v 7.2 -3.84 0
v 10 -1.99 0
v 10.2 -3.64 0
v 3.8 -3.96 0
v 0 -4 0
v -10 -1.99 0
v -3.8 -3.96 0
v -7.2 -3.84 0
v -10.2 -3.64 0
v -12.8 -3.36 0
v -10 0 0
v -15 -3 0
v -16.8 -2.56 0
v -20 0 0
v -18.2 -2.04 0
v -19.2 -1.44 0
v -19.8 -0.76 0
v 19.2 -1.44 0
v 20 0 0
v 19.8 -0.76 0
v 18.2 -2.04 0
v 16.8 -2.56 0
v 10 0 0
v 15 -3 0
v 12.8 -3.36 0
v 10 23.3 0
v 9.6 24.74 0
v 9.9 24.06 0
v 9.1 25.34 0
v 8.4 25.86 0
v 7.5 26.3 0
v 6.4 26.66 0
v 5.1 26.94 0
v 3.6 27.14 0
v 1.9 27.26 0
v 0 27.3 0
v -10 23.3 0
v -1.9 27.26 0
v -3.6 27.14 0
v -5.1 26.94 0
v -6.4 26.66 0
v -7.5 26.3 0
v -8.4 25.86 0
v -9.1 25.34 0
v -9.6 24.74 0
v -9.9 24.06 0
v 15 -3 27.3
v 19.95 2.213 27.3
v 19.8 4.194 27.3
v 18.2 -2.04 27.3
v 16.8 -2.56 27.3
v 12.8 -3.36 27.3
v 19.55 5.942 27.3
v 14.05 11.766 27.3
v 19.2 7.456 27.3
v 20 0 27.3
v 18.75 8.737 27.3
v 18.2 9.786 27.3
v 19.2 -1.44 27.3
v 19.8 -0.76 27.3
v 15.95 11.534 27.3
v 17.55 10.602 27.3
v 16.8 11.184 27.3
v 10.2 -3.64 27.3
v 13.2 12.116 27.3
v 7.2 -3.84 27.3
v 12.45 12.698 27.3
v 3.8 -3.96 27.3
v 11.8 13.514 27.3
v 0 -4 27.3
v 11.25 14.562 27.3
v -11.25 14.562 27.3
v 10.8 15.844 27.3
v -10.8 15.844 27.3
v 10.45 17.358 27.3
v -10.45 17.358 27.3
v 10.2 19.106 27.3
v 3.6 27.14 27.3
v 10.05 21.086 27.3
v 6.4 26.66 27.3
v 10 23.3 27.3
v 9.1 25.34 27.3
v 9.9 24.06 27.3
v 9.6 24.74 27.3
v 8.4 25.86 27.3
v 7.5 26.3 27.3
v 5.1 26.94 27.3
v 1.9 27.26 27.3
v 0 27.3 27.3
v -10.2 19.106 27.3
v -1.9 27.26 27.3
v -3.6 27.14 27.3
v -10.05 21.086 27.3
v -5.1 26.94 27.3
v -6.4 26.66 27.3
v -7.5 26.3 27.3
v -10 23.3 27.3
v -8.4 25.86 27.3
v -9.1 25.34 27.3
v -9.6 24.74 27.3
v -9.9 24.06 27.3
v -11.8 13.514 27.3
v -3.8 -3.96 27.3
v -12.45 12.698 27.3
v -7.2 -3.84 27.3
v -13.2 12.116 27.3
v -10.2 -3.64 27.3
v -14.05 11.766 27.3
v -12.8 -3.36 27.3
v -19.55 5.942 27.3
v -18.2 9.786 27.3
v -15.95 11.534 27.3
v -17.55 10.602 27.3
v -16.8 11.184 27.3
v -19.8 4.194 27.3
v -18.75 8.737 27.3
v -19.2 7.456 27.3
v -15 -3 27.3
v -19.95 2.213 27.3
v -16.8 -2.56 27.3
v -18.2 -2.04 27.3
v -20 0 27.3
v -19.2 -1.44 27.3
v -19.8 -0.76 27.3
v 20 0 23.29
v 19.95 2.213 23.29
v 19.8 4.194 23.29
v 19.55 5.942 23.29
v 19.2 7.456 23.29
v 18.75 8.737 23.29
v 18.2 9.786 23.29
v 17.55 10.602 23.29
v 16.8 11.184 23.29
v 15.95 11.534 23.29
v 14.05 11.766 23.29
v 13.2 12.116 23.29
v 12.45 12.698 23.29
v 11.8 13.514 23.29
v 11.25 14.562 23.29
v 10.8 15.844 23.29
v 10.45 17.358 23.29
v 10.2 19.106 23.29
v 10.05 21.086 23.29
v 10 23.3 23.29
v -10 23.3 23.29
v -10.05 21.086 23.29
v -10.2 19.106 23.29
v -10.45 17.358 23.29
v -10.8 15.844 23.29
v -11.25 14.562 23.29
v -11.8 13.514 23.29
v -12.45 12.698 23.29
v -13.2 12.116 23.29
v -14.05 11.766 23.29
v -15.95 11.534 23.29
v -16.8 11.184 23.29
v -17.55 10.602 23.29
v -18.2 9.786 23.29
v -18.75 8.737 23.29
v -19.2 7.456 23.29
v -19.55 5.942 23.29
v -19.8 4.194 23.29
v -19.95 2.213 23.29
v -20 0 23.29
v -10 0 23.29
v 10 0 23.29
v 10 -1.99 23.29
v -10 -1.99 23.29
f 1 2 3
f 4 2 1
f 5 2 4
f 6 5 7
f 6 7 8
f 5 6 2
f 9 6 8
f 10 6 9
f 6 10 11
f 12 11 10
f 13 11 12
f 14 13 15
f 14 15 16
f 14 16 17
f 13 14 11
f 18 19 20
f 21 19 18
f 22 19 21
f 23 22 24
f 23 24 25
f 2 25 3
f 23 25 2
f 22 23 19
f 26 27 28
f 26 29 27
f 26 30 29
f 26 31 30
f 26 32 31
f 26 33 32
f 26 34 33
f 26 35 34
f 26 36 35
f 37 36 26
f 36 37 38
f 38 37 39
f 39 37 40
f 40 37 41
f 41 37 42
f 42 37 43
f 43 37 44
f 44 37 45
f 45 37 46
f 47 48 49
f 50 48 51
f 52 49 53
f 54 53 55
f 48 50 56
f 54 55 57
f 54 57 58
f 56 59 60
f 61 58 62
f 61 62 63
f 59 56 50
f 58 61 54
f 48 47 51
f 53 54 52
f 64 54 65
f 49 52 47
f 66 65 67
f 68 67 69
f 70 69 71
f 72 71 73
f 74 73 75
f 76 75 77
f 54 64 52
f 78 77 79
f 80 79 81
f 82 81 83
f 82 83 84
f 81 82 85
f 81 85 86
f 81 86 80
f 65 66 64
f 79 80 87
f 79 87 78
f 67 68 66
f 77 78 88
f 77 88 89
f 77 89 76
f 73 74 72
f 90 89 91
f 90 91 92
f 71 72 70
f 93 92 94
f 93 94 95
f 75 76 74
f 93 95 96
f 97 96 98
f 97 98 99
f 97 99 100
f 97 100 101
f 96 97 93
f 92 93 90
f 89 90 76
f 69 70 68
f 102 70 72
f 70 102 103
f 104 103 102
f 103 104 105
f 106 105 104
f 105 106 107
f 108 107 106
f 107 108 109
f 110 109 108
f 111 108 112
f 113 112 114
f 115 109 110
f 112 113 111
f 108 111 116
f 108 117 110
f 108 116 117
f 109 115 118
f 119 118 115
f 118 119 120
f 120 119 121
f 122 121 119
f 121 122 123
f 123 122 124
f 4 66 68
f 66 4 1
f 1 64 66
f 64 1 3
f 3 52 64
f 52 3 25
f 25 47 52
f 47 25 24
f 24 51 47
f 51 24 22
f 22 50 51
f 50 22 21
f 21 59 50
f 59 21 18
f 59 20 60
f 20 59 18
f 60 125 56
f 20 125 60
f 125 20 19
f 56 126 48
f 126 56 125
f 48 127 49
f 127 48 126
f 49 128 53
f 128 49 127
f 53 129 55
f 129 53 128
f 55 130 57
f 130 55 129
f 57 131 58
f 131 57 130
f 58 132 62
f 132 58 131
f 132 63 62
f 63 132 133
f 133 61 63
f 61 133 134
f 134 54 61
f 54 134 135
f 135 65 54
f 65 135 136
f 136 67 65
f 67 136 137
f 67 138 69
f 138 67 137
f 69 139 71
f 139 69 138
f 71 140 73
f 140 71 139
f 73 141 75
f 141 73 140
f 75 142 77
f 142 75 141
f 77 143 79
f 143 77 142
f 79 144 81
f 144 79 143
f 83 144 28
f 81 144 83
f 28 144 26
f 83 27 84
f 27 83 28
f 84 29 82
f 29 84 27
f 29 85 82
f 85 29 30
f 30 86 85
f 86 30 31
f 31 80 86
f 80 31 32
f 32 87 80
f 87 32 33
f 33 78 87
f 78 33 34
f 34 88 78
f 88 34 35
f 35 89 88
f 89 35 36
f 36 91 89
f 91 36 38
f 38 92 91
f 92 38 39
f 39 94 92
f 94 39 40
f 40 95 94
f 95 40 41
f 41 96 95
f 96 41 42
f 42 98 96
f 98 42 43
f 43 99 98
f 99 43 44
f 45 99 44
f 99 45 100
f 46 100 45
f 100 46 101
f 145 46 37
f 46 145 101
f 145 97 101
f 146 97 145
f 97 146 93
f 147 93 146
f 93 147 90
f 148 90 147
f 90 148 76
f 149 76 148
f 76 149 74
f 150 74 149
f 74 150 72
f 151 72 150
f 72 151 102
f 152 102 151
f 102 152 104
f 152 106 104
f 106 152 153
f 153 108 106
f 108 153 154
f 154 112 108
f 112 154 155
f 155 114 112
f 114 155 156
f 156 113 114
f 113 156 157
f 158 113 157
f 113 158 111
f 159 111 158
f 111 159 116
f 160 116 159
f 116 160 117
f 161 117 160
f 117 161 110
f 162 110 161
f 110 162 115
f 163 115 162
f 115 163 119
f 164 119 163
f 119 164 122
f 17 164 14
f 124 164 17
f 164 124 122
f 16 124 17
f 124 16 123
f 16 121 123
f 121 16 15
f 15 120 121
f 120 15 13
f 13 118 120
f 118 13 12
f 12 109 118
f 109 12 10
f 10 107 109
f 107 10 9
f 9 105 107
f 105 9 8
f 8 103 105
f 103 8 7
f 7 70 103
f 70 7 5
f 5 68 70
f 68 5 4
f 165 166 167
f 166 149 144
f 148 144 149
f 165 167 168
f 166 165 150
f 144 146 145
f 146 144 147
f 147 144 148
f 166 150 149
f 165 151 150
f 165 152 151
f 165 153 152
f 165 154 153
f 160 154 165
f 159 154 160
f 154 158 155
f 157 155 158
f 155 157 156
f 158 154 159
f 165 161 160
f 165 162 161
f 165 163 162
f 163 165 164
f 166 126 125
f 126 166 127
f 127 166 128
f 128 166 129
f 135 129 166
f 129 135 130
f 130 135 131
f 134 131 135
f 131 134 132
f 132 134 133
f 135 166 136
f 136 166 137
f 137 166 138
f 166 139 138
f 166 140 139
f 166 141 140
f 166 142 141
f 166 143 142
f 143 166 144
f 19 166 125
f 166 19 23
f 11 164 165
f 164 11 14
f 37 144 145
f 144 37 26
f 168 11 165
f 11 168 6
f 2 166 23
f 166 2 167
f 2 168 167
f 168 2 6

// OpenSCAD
// file: vector.scad
function is_nan(x) = x != x ;

// reverse vector
function reverse(v) = [for (i =[len(v)-1:-1:0]) v[i]];
// repeat vector n-times
function repeat(v, n) = [for (i=[0:n*len(v)-1])  v[ i%len(v) ] ];
// allow negative indexes for vector (counting from the back). -1 is last element in array
function v_index(v, n) = is_undef(n) ? len(v) : n < 0 ? len(v)+n : n ;
// cut slice of vertor. `start` included , `end` excluded.
function slice(v, start, end=undef) = [for (i=[start:v_index(v,end)-1]) v[i] ];

function v_add(v, n) = [for (i=[0:len(v)-1]) v[i]+n ];

assert(reverse([1,2,3]) == [3,2,1]);
assert(repeat([1,2],3) ==  [1, 2, 1, 2, 1, 2]);
assert(v_index([1,2,3],-1)==2);
assert(v_index([1,2,3],0) == 0);
assert(v_index([1,2,3],undef)==3);
assert(slice([1,2,3],1,-1)==[2]);
assert(slice([1,2,3],1)==[2,3]);
assert(v_add([1,2,3],1)==[2,3,4]);
// file: 2d.scad
use <vector.scad>

function max_x(a, i = 0) = (len(a) == 0) ? 0 : (i < len(a) - 1) ? max(a[i][0], max_x(a, i+1)) : a[i][0];
function shift_x(a, dx, scaler=1) = [for ( p=a) [scaler*p[0]+dx,p[1]] ];
function inverse_x(a) = shift_x(reverse(a),max_x(a),-1);
function mirror_x(a) = shift_x(reverse(a),0,-1);

function concat_with_undefs(prev,next) = 
    len(prev) == 0 ? next : 
        let (prev_last_p = prev[v_index(prev,-1)]) 
        is_undef(prev_last_p[1])  
            ? concat(slice(prev,0,-1),[[prev_last_p[0],next[0][1]]],next) 
            : is_undef(next[0][1]) 
                ? concat(prev, [[next[0][0],prev_last_p[1]]], slice(next,1)) 
                : concat(prev, next) ;

function join_poly(polys, r = [], i=0) = (i < len(polys)) ? 
    join_poly( polys, concat_with_undefs(r,shift_x(polys[i],max_x(r))) ,i+1) : r;

function line_segment(p1,p2) = [p1,[p2[0]-p1[0], p2[1] - p1[1]]];

function ls_slope(ls) = ls[1][1]/ls[1][0] ;

function ls_distance(ls) = sqrt(pow(ls[1][1],2)+pow(ls[1][0],2));

function ls_angle(ls) = 
    let (ta = asin(ls[1][1]/ls_distance(ls))) 
    sign(ls[1][0]) == -1 ? sign(ta) * 180 - ta : ta ;

function angle_diff_cw(a1, a2) = a1 < a2 ? angle_diff_cw(a1+360, a2) : a1 - a2 ;

function angle_diff_ccw(a1, a2) = angle_diff_cw(a2, a1);

function ls_midpoint(ls) = ls[0]+ls[1]/2;

function ls_endpoint(ls) = ls[0]+ls[1];

function line(slope,pt) = [slope, pt[1]-slope*pt[0]];

function l_y(l,x) = l[0]*x + l[1];

function l_segment(l,x1,x2) = line_segment([x1, l_y(l,x1)], [x2, l_y(l,x2)]);

function ls_line(ls) = let(slope=ls_slope(ls)) line(slope,ls[0]);

function ls_perpendicular(ls) = 
    let (l = ls_line(ls)) 
    let (mp = ls_midpoint(ls))
    line(-1/l[0], mp);

function intersect_lines(l1, l2) = 
    let (x = (l2[1]-l1[1])/(l1[0]-l2[0]))
    [x,l_y(l1,x)];

function interpolate_point(ls,fraction) =  [
    ls[0][0] + fraction*ls[1][0],
    ls[0][1] + fraction*ls[1][1]
];

function bezier_curve(p1 , p2,  p3) =
    [line_segment(p1,p2), line_segment(p2, p3)];

function curve_point(bc, fraction) =
    interpolate_point(
        line_segment(
            interpolate_point(bc[0],fraction), 
            interpolate_point(bc[1], fraction)), 
        fraction);

function bc_poly(bc, n_points=10) = [for ( f = [0:1/n_points:1]) curve_point(bc, f)] ;

function rake_poly(up_ramp, down_to_valley, n_of_valleys) = 
    join_poly(concat(
        [up_ramp],
        repeat(
            [
                down_to_valley, 
                inverse_x(down_to_valley) // up on other side of the valley
            ], 
            n_of_valleys),
        [inverse_x(up_ramp)] // down ramp
    ));


function arc_point(a,f) = 
    let(c = a[0])
    let(r = a[1])
    let(initial_angle = a[2])
    let(cw = a[3])
    let(range = a[4])
    let (angle = cw ? initial_angle - f * range : initial_angle + f * range)
    c+[r*cos(angle),r*sin(angle)];

function arc_poly(a, n_points=10) = [for ( f = [0:1/n_points:1]) arc_point(a, f)] ;

function arc( p1, p2, p3 ) =
    let(ls1 = line_segment(p1,p2))
    let(ls2 = line_segment(p2,p3))
    let(ls3 = line_segment(p1,p3))    
    let(lp1 = ls_perpendicular(ls1))
    let(lp2 = ls_perpendicular(ls2))
    let(lp3 = ls_perpendicular(ls3))
    let(c12 = intersect_lines(lp1,lp2))
    let(c23 = intersect_lines(lp2,lp3))
    let(c13 = intersect_lines(lp1,lp3))
    let(c = !is_nan(c23[0]) ? c23 : !is_nan(c13[0])? c13 : c12 )
    let(r1 = line_segment(c,p1))
    let(r2 = line_segment(c,p2))
    let(r3 = line_segment(c,p3))
    let(r = ls_distance(r1))
    let(a1 = ls_angle(r1))
    let(a2 = ls_angle(r2))
    let(a3 = ls_angle(r3))
    let(cw = angle_diff_cw(a1,a2) < angle_diff_cw(a1,a3))
    let(a_diff = cw ? angle_diff_cw(a1,a3) : angle_diff_ccw(a1,a3))
    [c,r,a1,cw,a_diff];
// main file
a=23.3;          // body size 

lw = 20;         // lens width
l34 = lw * .75 ; // 3/4 th
l2 = lw /2 ;     // half
ld = 2 ;         // lens depth

t = 4;
e = .01;

use <2d.scad>

half=concat(
    bc_poly(bezier_curve([0,-t],[lw,-t],[lw,0])),
    bc_poly(bezier_curve([lw,0],[lw,a/2],[l34,a/2])),
    bc_poly(bezier_curve([l34,a/2],[l2,a/2],[l2,a])),
    bc_poly(bezier_curve([l2,a],[l2,a+t],[0,a+t]))
);

difference(){
    linear_extrude(height=a+t)
        polygon(points=concat(half, mirror_x(half))); // main shape
    translate([0,a/2,a/2-e]) 
        cube(size=[lw*3, a, a], center=true);  // webcam body recess
    translate([0, -ld/2+e, a/2-e]) 
        cube(size=[lw,ld,a], center=true);     // lens cavity
};
    
